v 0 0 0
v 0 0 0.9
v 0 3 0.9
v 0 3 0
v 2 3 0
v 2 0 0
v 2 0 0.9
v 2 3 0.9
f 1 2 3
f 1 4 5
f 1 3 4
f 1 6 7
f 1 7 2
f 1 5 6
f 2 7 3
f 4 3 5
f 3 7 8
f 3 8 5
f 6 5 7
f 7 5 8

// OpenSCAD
/* Warning, this is a very basic generator with a lot of approximation 
input data : [VDFN, 4CW, 2x3x0.9mm, 8, , B, C04-00581B]
generated by com.zoubworld.electronics.cad.model3d.Basic
Date : Sun Feb 15 10:50:49 CET 2026
*/

//body
color("black")
translate([0,0,0])
cube([2.0,3.0,0.9], center=false);
